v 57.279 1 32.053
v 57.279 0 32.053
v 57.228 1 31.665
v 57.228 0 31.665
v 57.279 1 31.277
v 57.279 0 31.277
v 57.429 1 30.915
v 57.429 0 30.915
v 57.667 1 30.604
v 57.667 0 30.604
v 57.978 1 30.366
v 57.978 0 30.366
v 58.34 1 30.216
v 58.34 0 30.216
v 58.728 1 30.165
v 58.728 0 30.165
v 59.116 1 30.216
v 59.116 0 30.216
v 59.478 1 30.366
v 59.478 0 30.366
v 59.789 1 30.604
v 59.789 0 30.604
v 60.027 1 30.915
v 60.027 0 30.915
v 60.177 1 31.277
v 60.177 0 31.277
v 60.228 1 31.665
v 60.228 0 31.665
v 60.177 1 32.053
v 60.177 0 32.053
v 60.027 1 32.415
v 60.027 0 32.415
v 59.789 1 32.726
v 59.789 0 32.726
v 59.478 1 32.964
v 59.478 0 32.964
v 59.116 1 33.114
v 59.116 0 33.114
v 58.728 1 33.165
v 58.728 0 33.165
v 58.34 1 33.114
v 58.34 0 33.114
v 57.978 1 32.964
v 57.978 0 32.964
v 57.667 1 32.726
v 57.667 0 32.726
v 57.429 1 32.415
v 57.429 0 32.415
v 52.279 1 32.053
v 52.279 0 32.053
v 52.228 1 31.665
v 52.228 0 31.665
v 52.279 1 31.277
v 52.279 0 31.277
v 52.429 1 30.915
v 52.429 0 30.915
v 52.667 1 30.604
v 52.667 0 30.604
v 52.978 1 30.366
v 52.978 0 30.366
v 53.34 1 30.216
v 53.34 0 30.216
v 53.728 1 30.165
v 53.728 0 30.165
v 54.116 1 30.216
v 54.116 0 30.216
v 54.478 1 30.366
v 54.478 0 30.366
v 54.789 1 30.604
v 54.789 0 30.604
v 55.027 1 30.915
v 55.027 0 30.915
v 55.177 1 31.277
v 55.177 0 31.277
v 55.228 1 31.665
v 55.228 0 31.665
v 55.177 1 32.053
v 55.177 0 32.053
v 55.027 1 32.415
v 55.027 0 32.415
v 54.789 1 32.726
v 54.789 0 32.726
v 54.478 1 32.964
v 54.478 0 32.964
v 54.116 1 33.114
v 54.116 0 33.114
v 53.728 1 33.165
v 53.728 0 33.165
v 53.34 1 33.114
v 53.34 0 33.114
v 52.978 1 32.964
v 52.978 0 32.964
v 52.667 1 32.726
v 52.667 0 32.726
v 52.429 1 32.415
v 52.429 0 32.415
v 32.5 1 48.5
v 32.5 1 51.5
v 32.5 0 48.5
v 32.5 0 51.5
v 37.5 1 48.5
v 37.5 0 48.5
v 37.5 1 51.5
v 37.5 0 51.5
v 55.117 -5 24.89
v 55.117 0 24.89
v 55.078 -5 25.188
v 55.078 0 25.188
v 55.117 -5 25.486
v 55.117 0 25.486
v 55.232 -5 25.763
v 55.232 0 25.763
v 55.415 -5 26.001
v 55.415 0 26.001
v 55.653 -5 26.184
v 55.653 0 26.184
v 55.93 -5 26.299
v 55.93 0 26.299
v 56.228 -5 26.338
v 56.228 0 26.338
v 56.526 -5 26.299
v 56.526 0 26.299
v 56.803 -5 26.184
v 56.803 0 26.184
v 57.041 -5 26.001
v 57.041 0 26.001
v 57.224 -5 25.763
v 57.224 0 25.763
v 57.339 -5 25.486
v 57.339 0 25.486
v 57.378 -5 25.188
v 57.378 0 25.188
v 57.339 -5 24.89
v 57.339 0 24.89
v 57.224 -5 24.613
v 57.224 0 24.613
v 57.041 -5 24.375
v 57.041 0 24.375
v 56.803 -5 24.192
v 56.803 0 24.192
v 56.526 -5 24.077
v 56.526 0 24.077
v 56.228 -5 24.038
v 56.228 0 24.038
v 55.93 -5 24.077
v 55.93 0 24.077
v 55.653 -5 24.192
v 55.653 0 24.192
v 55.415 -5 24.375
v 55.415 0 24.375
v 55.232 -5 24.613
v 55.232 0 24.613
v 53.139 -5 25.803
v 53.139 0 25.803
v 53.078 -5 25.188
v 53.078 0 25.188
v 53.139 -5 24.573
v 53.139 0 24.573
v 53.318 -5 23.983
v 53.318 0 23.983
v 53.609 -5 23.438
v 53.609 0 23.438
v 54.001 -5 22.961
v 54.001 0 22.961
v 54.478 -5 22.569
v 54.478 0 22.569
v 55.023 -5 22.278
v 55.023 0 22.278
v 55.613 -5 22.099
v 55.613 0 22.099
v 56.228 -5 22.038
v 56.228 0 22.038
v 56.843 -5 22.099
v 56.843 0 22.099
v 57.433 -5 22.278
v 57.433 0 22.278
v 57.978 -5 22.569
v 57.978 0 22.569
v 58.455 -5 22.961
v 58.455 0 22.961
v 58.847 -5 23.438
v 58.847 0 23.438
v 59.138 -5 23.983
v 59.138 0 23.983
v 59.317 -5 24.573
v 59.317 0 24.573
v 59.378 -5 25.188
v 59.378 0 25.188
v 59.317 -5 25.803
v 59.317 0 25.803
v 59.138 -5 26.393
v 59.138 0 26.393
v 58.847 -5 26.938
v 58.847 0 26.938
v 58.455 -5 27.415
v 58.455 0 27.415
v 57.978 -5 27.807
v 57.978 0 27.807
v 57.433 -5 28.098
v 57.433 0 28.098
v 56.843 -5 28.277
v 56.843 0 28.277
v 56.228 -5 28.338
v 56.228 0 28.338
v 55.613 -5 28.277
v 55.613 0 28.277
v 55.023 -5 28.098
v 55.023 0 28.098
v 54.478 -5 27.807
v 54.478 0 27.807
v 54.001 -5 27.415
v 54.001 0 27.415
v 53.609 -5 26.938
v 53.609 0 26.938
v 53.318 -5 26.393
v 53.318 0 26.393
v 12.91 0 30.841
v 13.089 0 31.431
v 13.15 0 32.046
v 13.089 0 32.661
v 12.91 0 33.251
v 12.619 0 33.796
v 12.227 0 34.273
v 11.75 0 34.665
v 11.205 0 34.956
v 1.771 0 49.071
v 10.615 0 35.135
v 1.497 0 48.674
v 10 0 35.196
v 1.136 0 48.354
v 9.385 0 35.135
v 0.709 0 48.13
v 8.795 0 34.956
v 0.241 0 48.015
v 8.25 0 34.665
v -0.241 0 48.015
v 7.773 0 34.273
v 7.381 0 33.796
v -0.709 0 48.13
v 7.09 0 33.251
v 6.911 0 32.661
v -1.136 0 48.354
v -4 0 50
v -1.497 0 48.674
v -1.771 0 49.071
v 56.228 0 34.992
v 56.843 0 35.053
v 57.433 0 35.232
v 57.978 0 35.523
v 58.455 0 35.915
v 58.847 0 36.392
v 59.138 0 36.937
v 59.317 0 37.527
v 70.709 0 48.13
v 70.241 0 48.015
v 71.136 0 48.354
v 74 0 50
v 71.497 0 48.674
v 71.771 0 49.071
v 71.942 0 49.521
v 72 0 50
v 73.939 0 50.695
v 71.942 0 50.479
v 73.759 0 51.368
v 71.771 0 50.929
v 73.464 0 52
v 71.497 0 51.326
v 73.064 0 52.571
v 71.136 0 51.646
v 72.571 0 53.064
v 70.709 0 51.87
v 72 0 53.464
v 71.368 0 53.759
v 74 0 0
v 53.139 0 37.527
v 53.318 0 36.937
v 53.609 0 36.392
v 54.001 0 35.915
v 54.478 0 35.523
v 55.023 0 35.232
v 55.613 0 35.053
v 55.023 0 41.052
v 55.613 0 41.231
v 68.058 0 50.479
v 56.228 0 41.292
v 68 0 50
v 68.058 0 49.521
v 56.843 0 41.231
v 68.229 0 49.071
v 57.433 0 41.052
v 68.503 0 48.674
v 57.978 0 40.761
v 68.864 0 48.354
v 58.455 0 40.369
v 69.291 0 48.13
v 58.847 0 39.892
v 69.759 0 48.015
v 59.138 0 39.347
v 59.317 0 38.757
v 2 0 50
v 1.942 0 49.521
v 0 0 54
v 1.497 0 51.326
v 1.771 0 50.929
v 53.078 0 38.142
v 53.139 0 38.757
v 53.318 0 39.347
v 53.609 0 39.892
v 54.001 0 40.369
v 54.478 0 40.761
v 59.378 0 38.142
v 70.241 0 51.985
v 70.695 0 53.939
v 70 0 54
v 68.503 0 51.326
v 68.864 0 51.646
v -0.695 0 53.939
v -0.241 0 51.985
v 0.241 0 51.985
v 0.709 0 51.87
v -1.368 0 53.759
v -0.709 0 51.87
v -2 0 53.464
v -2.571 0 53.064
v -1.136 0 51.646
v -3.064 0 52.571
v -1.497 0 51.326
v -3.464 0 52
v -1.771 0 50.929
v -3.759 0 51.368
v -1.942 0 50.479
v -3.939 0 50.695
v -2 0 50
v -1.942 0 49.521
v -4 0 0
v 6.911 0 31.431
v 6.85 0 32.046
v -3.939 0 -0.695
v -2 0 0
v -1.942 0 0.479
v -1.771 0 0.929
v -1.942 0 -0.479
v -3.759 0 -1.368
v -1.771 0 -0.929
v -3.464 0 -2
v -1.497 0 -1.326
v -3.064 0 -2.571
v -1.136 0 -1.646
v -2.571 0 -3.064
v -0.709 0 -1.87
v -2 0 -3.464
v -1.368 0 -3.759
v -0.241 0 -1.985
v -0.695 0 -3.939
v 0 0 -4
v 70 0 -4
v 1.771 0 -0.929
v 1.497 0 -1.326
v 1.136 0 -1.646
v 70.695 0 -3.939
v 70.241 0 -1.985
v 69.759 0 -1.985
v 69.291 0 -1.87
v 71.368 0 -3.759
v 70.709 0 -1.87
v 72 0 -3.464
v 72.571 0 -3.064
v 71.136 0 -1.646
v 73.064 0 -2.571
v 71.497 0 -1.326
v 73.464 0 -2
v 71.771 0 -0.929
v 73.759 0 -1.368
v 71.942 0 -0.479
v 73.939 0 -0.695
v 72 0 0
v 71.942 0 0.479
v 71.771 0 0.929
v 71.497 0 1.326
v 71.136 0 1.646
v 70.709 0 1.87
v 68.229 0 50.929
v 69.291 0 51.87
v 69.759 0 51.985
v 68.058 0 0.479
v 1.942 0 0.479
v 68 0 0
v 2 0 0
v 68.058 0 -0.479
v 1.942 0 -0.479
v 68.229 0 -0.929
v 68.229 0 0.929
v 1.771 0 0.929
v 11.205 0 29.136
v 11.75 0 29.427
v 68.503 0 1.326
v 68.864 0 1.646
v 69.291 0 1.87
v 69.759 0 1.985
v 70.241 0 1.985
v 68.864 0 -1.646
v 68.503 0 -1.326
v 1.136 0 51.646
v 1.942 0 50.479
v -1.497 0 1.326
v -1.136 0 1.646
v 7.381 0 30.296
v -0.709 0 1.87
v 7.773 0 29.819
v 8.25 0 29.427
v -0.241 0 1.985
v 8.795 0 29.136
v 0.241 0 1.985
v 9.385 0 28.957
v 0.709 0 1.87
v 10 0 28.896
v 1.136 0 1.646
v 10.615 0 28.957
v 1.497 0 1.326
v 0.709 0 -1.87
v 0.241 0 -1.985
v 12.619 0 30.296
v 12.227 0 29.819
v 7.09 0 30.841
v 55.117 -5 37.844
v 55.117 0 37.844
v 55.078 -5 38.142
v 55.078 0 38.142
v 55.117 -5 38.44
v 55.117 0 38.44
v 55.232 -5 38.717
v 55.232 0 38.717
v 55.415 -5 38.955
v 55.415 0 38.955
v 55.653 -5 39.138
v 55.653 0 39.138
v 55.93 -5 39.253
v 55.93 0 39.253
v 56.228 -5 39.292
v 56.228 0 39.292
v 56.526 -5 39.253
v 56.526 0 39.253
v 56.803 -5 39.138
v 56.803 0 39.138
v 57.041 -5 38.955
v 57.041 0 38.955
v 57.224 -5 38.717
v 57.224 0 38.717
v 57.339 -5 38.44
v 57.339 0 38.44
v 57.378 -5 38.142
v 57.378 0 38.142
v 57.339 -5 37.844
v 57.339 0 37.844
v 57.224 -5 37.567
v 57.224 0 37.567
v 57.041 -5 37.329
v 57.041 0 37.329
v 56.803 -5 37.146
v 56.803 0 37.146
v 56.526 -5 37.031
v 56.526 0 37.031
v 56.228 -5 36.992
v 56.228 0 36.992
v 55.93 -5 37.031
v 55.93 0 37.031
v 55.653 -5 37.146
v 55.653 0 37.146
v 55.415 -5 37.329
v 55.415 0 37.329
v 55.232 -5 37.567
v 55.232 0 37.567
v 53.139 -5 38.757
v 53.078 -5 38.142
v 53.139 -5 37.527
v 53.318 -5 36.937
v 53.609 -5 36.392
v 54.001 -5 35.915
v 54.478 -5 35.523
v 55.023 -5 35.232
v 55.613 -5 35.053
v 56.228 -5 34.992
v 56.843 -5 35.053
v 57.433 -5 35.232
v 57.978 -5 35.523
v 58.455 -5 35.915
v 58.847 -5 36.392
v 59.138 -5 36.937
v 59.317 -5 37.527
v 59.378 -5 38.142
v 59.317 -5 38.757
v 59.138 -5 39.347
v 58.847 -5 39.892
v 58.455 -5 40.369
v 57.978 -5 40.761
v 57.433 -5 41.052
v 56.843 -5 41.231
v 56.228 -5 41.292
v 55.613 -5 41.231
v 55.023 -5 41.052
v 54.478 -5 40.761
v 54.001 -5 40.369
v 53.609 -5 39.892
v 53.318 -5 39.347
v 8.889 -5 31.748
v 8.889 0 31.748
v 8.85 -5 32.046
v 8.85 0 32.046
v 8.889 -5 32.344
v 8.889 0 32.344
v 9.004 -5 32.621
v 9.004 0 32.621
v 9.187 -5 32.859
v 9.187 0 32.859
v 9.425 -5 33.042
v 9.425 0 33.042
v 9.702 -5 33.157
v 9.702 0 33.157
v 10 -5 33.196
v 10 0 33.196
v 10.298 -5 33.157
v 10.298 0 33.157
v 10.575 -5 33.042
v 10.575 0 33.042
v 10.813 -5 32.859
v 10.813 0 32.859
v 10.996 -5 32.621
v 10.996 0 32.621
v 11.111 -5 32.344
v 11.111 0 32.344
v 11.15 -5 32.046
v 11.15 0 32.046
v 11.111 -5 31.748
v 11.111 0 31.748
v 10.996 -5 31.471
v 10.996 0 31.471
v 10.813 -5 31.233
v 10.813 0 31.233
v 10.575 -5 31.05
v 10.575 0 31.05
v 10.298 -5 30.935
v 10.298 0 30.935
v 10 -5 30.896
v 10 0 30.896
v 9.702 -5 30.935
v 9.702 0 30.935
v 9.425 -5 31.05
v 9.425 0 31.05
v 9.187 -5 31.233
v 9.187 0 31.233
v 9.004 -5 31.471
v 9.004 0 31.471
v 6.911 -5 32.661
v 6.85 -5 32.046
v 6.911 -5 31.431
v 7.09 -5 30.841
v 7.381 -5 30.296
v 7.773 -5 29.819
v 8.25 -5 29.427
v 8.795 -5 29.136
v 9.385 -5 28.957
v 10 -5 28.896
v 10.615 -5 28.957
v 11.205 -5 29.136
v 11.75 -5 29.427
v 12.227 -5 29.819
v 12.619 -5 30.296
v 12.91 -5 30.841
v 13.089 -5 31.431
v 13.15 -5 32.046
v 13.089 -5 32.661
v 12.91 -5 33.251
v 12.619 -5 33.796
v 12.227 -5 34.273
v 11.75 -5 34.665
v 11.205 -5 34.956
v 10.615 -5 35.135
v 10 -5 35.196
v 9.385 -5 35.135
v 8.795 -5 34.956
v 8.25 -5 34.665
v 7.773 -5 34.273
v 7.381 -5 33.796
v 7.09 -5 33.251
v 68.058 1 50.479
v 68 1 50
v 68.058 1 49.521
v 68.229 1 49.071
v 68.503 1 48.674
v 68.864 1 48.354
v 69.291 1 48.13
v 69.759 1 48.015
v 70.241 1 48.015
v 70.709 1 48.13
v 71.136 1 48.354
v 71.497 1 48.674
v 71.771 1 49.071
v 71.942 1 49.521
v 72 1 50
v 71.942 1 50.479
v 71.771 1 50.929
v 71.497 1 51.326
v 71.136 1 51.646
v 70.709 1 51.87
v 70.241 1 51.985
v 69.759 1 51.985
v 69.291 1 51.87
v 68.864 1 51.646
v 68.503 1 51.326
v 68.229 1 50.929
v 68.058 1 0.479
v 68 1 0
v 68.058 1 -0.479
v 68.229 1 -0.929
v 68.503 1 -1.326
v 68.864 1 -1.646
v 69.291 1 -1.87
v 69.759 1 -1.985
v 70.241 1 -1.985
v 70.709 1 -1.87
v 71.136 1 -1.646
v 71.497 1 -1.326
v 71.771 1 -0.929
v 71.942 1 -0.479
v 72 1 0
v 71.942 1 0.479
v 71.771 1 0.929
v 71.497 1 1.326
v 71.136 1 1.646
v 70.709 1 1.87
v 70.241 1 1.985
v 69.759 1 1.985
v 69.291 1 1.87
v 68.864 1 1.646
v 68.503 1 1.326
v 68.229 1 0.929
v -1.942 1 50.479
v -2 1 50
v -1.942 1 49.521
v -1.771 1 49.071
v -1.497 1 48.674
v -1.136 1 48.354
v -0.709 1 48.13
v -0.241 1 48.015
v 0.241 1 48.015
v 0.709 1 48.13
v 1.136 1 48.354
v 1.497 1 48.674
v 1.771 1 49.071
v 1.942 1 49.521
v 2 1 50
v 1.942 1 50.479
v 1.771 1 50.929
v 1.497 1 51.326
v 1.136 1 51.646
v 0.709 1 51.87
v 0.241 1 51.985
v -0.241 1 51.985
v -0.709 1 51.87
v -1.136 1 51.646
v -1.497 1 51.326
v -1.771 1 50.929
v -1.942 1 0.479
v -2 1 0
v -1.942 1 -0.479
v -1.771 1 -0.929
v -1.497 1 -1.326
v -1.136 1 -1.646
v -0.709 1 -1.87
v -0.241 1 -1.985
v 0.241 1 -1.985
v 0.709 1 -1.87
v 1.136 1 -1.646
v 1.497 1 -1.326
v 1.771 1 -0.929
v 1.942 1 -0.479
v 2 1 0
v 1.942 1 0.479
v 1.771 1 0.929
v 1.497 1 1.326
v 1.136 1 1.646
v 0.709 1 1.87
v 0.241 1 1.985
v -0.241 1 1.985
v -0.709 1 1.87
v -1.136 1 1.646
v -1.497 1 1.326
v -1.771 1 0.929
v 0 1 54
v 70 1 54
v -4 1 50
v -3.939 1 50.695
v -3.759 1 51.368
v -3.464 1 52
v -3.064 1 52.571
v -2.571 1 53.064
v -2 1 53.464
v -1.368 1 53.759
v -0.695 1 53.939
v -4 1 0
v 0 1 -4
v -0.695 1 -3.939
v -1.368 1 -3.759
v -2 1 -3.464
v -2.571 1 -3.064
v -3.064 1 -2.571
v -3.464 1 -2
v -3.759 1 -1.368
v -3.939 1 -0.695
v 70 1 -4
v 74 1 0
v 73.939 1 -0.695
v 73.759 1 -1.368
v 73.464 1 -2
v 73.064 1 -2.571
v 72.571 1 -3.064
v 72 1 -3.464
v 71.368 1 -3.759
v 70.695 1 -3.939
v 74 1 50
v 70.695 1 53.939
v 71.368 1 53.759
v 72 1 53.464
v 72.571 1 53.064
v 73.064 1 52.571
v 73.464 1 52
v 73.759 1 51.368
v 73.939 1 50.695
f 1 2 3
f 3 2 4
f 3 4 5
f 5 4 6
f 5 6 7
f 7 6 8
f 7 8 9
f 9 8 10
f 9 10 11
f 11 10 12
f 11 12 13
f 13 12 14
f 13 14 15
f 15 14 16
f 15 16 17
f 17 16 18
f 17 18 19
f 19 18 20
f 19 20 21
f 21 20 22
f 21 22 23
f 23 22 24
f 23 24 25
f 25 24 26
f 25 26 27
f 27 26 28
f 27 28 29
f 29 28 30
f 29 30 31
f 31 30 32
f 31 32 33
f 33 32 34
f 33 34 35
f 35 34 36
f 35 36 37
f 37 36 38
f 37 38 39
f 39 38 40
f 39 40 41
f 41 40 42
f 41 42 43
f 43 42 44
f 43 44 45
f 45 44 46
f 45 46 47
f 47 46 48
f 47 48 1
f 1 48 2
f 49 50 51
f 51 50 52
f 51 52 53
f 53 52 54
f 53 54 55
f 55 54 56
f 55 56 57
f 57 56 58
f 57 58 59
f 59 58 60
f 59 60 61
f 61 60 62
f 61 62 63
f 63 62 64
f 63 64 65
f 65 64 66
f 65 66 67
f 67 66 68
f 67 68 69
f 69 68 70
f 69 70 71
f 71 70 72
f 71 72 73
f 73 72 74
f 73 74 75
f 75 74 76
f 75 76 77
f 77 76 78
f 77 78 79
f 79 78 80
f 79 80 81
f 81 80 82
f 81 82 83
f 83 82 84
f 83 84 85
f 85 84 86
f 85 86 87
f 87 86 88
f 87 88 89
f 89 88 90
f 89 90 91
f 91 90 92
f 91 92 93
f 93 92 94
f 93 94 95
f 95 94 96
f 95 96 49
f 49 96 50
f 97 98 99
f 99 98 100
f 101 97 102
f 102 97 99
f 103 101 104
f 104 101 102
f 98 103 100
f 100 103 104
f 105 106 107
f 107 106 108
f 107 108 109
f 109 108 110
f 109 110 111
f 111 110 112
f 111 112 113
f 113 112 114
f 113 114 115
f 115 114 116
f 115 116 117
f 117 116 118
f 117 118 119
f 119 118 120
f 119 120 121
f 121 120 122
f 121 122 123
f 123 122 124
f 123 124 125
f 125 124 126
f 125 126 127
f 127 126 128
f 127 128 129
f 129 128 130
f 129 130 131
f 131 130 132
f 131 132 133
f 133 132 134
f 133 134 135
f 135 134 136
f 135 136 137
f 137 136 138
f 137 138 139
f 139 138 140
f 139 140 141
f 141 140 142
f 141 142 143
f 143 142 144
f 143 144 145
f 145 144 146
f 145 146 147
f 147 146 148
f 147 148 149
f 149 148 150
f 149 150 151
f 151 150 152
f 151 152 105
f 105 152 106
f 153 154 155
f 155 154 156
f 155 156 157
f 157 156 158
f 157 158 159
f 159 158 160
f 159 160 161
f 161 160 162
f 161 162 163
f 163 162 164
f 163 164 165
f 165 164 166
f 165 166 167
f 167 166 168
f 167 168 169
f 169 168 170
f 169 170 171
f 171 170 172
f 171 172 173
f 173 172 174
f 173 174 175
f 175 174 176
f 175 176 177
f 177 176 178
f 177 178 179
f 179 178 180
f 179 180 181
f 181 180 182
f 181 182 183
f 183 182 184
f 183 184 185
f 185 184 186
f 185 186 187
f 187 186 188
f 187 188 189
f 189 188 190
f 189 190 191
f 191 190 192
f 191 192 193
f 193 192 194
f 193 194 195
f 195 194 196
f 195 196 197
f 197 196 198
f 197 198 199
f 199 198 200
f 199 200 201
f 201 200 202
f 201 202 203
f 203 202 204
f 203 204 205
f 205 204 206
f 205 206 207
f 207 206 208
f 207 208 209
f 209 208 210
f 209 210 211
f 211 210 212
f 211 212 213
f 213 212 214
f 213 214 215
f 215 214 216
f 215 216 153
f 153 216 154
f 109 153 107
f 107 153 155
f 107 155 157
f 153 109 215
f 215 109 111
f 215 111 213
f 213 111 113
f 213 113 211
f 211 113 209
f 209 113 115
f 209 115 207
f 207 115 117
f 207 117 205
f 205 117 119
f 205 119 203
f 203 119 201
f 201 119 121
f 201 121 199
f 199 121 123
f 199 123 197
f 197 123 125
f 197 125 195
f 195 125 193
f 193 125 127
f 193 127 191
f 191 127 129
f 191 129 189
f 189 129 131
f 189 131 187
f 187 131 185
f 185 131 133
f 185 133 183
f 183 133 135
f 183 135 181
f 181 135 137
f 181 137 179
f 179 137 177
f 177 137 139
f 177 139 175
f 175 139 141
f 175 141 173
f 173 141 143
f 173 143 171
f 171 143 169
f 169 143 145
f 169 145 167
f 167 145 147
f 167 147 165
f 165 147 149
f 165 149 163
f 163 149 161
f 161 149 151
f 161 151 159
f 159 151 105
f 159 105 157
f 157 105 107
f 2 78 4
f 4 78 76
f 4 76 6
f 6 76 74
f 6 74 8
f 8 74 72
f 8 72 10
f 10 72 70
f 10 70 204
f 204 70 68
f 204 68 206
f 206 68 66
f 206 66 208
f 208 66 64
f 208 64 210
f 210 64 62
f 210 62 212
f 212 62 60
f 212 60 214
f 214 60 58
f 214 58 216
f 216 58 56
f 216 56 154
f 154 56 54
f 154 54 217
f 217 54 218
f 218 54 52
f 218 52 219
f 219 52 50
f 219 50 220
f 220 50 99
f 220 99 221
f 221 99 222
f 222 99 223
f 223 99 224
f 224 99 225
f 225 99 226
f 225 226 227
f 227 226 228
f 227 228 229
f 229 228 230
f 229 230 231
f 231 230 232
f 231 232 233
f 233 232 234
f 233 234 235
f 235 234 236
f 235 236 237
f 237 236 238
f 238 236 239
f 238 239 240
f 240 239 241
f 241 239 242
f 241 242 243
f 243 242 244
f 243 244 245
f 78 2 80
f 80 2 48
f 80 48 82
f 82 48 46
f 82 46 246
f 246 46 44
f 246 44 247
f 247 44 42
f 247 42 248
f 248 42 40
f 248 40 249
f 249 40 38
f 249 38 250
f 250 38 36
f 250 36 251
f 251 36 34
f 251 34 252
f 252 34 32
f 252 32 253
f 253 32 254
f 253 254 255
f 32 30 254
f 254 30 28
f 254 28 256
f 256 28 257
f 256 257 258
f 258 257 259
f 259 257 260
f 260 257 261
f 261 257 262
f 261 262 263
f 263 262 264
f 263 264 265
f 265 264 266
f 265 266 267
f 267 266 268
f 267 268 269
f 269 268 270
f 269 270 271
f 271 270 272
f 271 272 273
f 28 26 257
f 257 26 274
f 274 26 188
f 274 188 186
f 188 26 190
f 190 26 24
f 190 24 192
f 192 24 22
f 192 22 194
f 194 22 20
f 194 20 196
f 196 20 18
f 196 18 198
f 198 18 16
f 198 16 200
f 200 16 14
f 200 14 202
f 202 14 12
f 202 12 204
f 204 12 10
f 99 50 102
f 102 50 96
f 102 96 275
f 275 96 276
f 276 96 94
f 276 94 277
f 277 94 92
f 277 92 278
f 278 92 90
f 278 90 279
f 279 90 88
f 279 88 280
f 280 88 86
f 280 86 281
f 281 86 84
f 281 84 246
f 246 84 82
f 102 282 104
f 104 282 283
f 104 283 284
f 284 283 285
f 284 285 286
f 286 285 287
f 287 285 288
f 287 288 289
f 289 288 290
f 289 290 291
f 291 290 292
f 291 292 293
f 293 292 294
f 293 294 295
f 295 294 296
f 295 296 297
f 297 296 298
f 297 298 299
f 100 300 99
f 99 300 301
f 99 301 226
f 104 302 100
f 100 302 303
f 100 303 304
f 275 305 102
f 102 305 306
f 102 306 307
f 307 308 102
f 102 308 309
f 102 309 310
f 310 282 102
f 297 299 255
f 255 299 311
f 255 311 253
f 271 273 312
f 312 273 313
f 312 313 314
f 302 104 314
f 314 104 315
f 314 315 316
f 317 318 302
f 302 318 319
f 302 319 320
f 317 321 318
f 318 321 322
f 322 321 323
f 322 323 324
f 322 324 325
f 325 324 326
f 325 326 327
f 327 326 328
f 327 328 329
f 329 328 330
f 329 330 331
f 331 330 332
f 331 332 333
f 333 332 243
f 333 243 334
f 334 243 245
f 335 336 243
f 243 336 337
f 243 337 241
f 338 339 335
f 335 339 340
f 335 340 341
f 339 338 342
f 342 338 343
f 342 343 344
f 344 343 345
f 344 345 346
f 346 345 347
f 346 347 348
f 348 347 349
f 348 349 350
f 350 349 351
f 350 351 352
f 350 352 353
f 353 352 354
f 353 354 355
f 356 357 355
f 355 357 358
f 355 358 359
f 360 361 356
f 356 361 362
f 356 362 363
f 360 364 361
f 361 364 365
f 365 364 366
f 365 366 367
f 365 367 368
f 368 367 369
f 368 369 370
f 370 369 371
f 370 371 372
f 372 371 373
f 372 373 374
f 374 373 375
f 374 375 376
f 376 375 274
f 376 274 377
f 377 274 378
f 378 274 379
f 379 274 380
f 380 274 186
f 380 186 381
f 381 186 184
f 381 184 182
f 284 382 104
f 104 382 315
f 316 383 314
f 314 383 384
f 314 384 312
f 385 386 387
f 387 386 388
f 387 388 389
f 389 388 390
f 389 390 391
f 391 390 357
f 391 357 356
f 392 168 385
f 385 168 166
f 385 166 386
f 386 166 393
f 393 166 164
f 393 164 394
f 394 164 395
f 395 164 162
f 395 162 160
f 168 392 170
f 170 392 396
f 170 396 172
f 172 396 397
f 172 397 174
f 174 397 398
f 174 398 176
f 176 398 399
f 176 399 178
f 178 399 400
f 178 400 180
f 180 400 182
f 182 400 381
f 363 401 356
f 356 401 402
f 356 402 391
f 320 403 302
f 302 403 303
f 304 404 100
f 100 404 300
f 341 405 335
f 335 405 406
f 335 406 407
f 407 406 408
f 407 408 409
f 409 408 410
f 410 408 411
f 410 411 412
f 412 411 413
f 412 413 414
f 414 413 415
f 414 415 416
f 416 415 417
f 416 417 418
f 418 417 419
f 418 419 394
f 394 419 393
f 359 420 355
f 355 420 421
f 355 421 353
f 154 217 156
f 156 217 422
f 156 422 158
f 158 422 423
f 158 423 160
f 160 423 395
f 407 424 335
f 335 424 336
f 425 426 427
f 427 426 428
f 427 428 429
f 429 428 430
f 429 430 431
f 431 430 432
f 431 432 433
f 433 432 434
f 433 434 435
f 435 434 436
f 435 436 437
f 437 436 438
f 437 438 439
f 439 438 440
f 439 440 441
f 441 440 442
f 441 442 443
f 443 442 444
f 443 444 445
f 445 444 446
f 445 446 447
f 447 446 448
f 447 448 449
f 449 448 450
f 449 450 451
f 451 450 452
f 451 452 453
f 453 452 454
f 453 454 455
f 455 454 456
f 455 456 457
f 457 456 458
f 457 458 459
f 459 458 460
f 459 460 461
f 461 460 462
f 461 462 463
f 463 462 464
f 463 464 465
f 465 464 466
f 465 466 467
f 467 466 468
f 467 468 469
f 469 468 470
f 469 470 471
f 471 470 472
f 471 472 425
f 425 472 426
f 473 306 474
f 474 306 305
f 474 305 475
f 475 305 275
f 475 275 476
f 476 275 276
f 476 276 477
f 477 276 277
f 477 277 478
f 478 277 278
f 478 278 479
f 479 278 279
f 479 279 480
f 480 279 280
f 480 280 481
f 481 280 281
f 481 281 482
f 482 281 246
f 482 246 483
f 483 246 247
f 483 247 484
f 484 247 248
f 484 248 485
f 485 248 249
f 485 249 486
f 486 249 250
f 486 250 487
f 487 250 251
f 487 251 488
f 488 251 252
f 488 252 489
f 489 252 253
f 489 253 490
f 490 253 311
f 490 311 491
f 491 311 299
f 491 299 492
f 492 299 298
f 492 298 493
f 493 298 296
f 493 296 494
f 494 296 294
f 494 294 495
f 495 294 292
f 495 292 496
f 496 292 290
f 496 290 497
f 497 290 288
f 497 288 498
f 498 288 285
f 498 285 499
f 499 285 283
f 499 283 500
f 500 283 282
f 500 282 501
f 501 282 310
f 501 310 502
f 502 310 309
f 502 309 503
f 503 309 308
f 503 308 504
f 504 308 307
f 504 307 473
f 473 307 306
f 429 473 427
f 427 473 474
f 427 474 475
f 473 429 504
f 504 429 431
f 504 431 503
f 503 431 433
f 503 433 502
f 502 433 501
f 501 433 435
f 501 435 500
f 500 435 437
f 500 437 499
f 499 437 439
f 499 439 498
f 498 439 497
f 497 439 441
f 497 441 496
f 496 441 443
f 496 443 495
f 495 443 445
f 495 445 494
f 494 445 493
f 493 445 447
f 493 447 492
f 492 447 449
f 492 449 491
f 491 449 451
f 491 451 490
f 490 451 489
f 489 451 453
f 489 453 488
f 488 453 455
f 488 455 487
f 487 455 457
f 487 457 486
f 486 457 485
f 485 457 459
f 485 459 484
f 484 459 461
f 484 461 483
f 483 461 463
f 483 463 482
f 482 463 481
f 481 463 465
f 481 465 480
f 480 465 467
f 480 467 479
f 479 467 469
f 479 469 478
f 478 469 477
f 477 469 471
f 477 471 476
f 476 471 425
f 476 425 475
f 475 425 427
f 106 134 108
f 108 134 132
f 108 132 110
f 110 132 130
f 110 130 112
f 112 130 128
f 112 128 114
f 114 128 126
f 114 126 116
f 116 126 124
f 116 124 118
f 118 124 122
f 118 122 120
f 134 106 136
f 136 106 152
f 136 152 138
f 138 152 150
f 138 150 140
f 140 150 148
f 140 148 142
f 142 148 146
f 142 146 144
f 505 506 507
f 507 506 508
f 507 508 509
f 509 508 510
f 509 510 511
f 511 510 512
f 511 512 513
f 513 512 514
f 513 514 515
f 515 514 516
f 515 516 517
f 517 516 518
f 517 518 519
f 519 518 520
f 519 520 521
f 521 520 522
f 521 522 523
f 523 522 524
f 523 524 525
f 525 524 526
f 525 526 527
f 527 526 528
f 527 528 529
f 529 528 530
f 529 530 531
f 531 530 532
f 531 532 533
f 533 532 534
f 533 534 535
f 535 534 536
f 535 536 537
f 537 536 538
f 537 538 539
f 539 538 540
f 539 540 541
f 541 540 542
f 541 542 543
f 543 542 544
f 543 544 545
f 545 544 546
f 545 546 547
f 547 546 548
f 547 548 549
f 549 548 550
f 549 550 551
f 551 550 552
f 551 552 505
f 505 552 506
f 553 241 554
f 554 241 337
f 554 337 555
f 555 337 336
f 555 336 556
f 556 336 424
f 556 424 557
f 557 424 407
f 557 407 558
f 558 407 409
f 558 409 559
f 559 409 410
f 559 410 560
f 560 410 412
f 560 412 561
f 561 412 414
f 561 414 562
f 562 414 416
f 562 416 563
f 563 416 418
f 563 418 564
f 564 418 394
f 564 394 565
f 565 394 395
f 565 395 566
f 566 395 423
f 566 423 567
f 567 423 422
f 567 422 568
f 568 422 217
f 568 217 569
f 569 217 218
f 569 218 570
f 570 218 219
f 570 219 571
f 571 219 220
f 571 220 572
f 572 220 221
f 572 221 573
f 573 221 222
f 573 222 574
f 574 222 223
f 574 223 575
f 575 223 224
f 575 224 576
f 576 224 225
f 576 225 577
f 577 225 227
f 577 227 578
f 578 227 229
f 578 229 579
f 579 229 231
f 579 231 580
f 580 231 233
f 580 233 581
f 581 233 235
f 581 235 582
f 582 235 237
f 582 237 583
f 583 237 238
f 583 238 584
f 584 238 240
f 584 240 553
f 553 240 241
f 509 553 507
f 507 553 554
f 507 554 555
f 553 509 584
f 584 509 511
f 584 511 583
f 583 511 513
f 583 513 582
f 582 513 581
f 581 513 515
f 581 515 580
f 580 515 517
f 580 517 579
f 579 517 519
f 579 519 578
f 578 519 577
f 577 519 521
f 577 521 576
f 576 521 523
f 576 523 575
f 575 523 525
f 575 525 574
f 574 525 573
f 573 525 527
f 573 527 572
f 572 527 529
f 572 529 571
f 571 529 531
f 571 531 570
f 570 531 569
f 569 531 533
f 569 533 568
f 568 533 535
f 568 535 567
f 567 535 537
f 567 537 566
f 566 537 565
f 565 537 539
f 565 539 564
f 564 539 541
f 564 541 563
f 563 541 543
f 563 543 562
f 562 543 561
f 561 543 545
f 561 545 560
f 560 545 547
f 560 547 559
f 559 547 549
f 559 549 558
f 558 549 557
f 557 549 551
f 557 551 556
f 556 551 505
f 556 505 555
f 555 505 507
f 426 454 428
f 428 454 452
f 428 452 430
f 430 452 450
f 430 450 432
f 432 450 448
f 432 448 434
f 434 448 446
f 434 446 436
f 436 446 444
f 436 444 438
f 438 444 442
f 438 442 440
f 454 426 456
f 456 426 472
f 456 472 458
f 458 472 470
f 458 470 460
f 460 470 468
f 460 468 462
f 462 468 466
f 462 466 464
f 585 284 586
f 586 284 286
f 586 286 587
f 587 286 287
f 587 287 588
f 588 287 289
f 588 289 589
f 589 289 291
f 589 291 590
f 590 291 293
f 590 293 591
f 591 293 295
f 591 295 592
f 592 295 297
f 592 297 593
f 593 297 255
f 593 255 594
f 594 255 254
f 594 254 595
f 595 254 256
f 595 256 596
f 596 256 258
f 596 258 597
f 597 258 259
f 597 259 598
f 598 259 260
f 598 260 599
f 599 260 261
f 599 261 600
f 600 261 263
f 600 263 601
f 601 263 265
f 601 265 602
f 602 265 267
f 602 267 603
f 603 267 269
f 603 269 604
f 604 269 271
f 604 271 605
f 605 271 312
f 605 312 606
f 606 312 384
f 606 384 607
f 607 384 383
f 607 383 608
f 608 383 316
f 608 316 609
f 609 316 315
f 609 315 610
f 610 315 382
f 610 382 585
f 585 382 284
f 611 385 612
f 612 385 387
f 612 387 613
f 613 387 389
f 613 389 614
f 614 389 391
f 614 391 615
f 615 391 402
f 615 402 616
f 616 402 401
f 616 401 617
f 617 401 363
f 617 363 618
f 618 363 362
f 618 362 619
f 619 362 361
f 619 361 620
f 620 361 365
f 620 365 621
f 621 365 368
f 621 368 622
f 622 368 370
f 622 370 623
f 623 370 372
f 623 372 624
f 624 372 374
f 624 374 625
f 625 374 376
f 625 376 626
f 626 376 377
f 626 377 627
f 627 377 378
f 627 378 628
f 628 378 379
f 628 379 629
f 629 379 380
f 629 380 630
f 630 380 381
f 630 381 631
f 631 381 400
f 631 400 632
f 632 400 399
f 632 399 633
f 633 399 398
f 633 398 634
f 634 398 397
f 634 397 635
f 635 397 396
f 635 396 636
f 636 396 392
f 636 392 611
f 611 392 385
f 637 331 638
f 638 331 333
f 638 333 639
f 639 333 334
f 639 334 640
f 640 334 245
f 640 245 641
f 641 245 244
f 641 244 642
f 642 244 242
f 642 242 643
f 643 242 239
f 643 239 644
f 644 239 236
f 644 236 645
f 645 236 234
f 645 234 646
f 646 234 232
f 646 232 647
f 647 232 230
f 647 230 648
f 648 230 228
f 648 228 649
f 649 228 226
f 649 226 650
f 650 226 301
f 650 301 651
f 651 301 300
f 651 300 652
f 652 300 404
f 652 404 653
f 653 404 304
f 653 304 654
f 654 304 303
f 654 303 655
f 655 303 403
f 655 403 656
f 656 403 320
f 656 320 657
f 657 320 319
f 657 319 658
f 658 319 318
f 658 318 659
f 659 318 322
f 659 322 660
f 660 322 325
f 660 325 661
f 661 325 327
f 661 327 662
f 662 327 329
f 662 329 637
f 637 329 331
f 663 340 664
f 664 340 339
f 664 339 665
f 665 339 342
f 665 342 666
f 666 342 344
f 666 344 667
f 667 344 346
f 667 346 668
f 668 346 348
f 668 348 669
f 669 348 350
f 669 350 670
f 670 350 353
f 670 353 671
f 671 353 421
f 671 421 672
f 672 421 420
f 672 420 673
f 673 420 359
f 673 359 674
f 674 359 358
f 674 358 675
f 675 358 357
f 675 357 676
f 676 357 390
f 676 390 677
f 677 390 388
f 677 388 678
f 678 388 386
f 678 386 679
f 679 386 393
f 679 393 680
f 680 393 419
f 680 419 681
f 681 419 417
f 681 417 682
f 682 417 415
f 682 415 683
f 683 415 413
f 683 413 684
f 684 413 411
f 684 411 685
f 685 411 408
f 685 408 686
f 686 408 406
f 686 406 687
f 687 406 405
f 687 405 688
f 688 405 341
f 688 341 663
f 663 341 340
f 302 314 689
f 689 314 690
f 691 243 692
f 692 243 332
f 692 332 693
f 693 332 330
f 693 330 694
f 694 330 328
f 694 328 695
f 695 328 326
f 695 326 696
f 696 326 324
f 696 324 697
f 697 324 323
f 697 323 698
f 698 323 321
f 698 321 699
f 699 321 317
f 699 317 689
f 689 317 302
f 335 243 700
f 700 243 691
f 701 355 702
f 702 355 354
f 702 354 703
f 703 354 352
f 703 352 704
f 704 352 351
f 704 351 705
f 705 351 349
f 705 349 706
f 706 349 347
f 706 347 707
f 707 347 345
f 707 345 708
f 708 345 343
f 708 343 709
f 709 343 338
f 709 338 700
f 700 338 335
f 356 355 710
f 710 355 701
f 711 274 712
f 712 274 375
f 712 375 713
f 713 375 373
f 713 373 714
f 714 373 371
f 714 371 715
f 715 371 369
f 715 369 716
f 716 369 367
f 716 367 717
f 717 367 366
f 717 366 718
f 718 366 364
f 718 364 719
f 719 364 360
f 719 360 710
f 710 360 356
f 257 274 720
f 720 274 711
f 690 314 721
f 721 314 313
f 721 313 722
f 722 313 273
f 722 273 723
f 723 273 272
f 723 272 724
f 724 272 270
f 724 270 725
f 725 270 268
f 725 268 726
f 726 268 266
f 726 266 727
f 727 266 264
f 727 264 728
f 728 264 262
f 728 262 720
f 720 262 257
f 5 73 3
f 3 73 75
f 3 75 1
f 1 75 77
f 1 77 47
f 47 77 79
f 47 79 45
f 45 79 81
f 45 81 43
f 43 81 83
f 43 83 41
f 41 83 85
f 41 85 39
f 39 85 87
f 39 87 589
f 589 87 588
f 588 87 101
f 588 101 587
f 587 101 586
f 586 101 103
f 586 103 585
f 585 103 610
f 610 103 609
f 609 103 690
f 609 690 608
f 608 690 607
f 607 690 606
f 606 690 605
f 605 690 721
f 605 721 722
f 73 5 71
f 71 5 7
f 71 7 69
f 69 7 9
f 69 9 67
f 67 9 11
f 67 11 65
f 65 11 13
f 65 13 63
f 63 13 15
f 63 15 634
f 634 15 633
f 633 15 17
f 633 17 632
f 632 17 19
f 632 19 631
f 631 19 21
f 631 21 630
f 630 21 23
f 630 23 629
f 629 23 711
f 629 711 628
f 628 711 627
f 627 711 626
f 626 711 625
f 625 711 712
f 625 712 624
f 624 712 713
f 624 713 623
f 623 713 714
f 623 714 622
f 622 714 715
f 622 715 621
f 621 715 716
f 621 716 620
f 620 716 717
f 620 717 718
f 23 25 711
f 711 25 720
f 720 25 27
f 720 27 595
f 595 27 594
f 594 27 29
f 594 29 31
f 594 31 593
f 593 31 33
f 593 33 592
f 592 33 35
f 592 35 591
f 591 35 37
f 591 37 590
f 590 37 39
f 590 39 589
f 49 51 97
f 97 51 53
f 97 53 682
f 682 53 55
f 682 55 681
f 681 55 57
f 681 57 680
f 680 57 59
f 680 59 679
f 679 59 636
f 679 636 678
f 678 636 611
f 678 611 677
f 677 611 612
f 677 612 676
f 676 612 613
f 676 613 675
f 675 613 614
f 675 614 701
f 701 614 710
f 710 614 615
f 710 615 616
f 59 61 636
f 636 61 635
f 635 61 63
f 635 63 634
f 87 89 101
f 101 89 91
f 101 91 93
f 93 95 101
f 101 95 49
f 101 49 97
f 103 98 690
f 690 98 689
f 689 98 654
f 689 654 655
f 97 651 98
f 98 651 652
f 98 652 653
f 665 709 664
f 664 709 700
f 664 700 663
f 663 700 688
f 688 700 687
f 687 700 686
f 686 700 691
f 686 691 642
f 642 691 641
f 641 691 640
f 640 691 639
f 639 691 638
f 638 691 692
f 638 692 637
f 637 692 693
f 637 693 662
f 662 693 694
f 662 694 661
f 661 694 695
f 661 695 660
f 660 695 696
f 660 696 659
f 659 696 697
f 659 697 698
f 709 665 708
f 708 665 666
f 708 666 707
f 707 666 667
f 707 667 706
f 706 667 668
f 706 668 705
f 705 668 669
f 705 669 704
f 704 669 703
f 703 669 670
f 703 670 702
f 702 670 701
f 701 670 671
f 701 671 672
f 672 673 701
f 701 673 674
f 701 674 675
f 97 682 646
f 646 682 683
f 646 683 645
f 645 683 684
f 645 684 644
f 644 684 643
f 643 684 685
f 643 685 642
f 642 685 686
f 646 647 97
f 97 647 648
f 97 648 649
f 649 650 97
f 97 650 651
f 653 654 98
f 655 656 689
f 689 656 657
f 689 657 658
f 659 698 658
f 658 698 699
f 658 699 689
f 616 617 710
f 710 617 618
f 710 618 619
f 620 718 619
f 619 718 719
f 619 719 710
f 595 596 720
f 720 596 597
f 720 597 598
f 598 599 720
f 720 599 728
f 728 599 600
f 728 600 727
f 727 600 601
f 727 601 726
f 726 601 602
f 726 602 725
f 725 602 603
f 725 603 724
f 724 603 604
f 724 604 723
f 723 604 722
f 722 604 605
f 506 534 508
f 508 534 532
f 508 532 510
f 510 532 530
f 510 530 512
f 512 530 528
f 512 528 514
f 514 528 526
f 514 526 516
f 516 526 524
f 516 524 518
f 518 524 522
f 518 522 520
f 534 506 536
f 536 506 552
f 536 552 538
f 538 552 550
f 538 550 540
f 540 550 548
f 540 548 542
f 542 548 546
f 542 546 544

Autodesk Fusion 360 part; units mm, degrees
sketch "Sketch1" plane through (0, 0, 0) normal (0, 1, 0) x (1, 0, 0)
  line L0 (0, 0) -> (70, 0)
  line L1 (70, 0) -> (70, -50)
  line L2 (70, -50) -> (0, -50)
  line L3 (0, -50) -> (0, 0)
  circle A0 centre (0, -50) radius 2
  circle A1 centre (0, 0) radius 2
  circle A2 centre (70, 0) radius 2
  circle A3 centre (70, -50) radius 2
  line L4 (0, 4) -> (70, 4)
  line L5 (74, 0) -> (74, -50)
  line L6 (70, -54) -> (0, -54)
  line L7 (-4, -50) -> (-4, 0)
  arc A4 (-4, -50) -> (0, -54) centre (0, -50) ccw
  arc A5 (0, 4) -> (-4, 0) centre (0, 0) ccw
  arc A6 (70, -54) -> (74, -50) centre (70, -50) ccw
  arc A7 (74, 0) -> (70, 4) centre (70, 0) ccw
  dimension "d1" = 70
  dimension "d2" = 50
  dimension "d3" = 4
  dimension "d4" = 4
  dimension "d5" = 4
  dimension "d6" = 4
  dimension "d8" = 4
  dimension "d9" = 4
  dimension "d10" = 4
  dimension "d11" = 4
extrude "Extrude1" add sketch "Sketch1" along normal blind 1 contours L0 L1 L2 L3 A0 A1 A2 A3 | L4 L5 L6 L7 A4 A5 A6 A7
sketch "Sketch2" plane through (0, 0, 0) normal (0, -1, 0) x (1, 0, 0)
  circle A0 centre (0, 0) radius 2
  circle A1 centre (0, 50) radius 2
  circle A2 centre (70, 0) radius 2
  circle A3 centre (70, 50) radius 2
  arc A4 (74, 50) -> (70, 54) centre (70, 50) ccw
  line L0 (70, 54) -> (0, 54)
  arc A5 (0, 54) -> (-4, 50) centre (0, 50) ccw
  line L1 (-4, 50) -> (-4, 0)
  arc A6 (-4, 0) -> (0, -4) centre (0, 0) ccw
  line L2 (0, -4) -> (70, -4)
  arc A7 (70, -4) -> (74, 0) centre (70, 0) ccw
  line L3 (74, 0) -> (74, 50)
  line L4 (10, 54) -> (10, -4)
  line L5 (56.228, 54) -> (56.228, -4)
  circle A8 centre (10, 32.046) radius 1.15
  circle A9 centre (56.228, 38.142) radius 1.15
  circle A10 centre (56.228, 25.188) radius 1.15
  line L6 (10, 45) -> (56.228, 45)
  line L7 (56.228, 45) -> (56.228, 5)
  line L8 (56.228, 5) -> (10, 5)
  line L9 (10, 5) -> (10, 45)
  line L10 (10, 25) -> (-4, 25)
  circle A11 centre (10, 32.046) radius 3.15
  circle A12 centre (56.228, 38.142) radius 3.15
  circle A13 centre (56.228, 25.188) radius 3.15
  line L11 (56.228, 38.142) -> (56.228, 25.188)
  circle A14 centre (53.728, 31.665) radius 1.5
  circle A15 centre (58.728, 31.665) radius 1.5
  line L12 (0, 50) -> (70, 50)
  line L13 (32.5, 51.5) -> (37.5, 51.5)
  line L14 (37.5, 51.5) -> (37.5, 48.5)
  line L15 (37.5, 48.5) -> (32.5, 48.5)
  line L16 (32.5, 48.5) -> (32.5, 51.5)
  line L17 (32.5, 51.5) -> (37.5, 48.5)
  line L18 (32.5, 48.5) -> (37.5, 51.5)
  line L19 (53.728, 31.665) -> (58.728, 31.665)
  point P0 (35, 50)
  point P1 (35, 50)
  point P2 (56.228, 31.665)
  point P3 (56.228, 31.665)
  dimension "d15" = 10
  dimension "d16" = 46.228
  dimension "d18" = 6.096
  dimension "d19" = 12.954
  dimension "d20" = 6.858
  dimension "d21" = 2.3
  dimension "d22" = 2.3
  dimension "d23" = 2.3
  dimension "d24" = 40
  dimension "d25" = 90
  dimension "d26" = 2
  dimension "d27" = 2
  dimension "d28" = 2
  dimension "d32" = 3
  dimension "d33" = 3
  dimension "d34" = 5
  dimension "d40" = 3
  dimension "d41" = 5
extrude "Extrude2" add sketch "Sketch2" along normal blind 5 contours L4 A8 L9 A11 | L4 A8 L9 A11 | L5 A9 L7 A12 L11 | L5 A9 L7 A12 L11 | L5 A10 L7 A13 L11 | L5 A10 L7 A13 L11
extrude "Extrude3" cut sketch "Sketch2" against normal blind 5 contours A14 | L12 L16 L17 | L12 L16 L18 | A15 | L12 L14 L18 | L12 L14 L17 | L15 L17 L18 | L13 L17 L18
